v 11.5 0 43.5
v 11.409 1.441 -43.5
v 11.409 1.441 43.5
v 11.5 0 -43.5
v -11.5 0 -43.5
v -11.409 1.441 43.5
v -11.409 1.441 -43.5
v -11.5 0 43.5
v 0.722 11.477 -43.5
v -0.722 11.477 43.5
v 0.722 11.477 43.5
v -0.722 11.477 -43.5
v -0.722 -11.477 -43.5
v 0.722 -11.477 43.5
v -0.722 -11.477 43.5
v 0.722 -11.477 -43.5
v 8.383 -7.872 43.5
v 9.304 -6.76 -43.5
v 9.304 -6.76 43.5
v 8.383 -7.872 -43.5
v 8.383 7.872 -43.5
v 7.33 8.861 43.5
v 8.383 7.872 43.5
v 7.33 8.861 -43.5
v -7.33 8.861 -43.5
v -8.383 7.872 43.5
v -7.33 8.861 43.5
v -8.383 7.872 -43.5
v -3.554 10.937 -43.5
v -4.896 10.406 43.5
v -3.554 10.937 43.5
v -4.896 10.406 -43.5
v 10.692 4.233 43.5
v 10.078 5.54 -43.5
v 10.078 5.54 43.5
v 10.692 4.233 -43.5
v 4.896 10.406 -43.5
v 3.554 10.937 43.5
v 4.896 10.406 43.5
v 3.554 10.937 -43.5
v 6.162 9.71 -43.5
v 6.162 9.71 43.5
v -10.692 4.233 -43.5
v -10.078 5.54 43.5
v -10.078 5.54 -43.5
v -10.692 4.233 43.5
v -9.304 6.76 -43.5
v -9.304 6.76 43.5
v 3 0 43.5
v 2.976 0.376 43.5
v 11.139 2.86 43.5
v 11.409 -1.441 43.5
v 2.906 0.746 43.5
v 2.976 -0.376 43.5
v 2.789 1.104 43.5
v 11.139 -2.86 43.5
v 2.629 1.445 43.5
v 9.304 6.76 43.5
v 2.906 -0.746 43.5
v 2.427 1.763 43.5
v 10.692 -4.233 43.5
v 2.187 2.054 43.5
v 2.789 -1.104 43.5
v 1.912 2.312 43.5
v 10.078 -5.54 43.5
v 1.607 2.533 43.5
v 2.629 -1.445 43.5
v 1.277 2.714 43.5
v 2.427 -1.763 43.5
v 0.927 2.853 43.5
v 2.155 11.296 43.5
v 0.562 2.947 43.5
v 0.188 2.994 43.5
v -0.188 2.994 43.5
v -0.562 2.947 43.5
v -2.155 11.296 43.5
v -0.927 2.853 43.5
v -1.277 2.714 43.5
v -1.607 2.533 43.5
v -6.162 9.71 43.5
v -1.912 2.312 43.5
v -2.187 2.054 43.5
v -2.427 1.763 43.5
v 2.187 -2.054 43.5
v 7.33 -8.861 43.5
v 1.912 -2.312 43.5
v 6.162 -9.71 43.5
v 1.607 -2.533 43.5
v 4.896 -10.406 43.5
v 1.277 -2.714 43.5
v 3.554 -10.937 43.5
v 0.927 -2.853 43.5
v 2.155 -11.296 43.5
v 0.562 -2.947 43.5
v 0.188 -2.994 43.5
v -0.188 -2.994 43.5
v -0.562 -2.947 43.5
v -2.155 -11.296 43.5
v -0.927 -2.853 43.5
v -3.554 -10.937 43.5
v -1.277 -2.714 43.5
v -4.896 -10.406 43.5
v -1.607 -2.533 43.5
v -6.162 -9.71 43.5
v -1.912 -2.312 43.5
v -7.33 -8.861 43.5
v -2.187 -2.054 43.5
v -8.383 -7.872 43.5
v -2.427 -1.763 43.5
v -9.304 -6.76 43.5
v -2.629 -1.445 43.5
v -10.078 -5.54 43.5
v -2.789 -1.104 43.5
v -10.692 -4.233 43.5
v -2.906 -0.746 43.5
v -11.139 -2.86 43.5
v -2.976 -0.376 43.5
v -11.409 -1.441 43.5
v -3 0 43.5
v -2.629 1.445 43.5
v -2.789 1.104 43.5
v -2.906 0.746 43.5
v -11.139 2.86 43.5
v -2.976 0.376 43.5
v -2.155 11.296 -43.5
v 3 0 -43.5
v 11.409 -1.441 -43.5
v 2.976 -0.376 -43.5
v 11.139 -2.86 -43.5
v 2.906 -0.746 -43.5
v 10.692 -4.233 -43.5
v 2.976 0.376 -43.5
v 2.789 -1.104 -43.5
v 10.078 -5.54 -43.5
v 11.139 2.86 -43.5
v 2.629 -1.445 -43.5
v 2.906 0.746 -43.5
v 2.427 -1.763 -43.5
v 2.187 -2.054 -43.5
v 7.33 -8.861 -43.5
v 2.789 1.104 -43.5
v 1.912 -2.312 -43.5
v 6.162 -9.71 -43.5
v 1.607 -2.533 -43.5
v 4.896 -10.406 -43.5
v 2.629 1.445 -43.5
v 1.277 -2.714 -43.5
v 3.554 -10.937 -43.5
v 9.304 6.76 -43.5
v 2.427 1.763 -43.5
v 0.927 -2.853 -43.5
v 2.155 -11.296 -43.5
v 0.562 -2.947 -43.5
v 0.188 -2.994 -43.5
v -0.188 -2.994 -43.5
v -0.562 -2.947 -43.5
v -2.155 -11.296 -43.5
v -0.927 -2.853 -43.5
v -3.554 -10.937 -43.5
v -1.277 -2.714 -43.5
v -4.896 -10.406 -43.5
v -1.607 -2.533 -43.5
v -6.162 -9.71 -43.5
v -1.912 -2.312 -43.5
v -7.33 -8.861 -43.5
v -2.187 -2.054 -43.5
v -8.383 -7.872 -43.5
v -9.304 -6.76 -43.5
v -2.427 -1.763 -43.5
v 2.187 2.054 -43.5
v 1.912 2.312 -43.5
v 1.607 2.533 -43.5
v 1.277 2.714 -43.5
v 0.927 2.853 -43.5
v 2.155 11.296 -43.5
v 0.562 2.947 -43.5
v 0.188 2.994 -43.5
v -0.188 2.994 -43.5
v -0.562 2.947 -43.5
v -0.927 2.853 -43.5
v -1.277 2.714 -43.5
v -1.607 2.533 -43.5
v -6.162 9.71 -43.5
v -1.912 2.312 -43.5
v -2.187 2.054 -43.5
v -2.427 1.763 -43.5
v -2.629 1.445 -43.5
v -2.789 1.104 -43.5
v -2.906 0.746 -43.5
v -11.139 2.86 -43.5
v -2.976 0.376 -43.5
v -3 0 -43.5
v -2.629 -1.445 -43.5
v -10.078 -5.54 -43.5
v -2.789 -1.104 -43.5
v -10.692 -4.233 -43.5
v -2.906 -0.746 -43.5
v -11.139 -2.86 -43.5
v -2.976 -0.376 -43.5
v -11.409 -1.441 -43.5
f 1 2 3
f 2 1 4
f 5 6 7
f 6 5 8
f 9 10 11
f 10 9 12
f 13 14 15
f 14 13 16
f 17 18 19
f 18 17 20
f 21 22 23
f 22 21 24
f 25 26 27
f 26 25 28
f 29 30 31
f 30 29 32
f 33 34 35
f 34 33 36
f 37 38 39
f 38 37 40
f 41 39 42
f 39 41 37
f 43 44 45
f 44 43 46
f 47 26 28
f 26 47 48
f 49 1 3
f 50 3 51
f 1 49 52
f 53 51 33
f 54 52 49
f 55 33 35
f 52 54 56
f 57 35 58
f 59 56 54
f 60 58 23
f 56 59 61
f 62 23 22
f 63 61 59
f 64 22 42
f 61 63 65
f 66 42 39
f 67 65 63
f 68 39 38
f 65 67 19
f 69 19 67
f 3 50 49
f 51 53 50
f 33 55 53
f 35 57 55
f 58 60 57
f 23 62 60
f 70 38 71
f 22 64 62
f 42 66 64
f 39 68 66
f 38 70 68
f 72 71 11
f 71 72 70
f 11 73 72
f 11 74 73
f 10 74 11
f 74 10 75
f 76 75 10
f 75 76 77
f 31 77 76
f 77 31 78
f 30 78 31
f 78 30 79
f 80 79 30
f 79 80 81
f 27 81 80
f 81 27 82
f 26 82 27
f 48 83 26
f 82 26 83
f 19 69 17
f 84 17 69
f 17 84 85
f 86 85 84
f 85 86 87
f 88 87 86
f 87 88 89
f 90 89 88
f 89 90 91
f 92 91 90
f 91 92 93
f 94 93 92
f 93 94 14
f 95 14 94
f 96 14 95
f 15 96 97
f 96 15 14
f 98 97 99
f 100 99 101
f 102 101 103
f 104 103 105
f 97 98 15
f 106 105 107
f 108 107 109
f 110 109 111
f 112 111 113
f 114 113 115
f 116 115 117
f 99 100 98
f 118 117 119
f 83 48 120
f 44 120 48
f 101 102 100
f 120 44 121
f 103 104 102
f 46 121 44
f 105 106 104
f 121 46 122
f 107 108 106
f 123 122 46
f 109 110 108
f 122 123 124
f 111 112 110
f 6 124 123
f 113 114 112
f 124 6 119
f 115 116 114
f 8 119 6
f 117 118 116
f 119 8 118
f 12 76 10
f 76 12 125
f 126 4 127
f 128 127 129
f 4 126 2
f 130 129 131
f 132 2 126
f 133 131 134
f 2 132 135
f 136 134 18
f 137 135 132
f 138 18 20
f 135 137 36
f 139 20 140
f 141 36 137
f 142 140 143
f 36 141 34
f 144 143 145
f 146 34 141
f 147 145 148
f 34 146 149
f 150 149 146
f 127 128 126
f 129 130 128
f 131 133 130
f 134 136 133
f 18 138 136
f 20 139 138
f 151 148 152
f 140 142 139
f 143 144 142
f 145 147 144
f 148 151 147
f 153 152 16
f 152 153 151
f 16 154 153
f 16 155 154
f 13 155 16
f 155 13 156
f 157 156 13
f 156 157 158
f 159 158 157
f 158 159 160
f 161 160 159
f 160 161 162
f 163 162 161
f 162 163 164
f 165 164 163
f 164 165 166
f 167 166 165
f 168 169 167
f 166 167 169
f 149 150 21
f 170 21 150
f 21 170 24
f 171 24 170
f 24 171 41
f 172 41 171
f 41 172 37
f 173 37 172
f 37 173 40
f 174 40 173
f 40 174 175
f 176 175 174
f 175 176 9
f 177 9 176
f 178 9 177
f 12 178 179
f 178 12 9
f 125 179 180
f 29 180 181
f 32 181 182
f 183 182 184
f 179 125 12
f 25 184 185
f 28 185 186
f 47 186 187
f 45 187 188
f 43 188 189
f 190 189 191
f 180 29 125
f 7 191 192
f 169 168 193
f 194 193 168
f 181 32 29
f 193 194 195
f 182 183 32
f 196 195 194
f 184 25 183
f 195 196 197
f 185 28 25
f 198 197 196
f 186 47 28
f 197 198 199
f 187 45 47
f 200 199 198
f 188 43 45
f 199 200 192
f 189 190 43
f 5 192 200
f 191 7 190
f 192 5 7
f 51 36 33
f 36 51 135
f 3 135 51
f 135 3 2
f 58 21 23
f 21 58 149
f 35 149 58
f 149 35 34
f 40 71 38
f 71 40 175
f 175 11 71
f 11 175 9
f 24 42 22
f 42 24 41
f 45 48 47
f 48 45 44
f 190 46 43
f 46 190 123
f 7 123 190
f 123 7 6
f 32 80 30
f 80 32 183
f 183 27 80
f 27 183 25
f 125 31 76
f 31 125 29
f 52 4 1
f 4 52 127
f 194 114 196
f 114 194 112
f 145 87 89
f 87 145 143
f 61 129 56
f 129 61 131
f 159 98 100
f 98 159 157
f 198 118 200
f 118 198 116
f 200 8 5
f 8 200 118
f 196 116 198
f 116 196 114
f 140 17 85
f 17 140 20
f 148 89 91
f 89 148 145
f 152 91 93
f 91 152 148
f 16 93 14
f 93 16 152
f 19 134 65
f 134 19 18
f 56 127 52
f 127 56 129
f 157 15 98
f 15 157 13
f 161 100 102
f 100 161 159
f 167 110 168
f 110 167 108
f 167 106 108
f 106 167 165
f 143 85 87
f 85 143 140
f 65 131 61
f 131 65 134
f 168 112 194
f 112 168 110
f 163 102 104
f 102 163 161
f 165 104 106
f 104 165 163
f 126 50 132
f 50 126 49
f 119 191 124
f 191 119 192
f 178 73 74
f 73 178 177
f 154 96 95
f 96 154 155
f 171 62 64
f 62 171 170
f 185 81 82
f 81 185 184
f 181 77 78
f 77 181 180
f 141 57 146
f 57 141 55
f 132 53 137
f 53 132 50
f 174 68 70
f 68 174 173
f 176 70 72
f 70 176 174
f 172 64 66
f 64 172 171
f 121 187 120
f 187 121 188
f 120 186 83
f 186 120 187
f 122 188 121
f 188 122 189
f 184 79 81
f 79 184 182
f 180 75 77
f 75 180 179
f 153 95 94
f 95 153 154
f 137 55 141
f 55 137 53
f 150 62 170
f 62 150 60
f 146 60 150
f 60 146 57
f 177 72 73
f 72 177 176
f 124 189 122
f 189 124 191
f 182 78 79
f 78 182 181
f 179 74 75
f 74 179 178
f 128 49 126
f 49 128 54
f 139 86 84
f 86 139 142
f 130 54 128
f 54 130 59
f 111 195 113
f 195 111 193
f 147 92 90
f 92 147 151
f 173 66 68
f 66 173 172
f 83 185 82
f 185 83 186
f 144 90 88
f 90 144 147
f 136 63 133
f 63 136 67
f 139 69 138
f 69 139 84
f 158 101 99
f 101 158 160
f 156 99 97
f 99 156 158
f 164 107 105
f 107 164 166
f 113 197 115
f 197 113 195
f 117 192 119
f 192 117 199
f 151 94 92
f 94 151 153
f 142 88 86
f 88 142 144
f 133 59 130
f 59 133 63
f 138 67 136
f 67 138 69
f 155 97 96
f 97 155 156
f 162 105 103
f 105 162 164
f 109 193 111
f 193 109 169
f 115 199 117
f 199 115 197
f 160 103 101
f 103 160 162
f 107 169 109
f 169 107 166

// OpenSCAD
$fn = 50;


difference() {
	union() {
		translate(v = [0, 0, -43.5000000000]) {
			cylinder(h = 87, r = 11.5000000000);
		}
	}
	union() {
		translate(v = [0, 0, -100.0000000000]) {
			cylinder(h = 200, r = 3);
		}
	}
}
